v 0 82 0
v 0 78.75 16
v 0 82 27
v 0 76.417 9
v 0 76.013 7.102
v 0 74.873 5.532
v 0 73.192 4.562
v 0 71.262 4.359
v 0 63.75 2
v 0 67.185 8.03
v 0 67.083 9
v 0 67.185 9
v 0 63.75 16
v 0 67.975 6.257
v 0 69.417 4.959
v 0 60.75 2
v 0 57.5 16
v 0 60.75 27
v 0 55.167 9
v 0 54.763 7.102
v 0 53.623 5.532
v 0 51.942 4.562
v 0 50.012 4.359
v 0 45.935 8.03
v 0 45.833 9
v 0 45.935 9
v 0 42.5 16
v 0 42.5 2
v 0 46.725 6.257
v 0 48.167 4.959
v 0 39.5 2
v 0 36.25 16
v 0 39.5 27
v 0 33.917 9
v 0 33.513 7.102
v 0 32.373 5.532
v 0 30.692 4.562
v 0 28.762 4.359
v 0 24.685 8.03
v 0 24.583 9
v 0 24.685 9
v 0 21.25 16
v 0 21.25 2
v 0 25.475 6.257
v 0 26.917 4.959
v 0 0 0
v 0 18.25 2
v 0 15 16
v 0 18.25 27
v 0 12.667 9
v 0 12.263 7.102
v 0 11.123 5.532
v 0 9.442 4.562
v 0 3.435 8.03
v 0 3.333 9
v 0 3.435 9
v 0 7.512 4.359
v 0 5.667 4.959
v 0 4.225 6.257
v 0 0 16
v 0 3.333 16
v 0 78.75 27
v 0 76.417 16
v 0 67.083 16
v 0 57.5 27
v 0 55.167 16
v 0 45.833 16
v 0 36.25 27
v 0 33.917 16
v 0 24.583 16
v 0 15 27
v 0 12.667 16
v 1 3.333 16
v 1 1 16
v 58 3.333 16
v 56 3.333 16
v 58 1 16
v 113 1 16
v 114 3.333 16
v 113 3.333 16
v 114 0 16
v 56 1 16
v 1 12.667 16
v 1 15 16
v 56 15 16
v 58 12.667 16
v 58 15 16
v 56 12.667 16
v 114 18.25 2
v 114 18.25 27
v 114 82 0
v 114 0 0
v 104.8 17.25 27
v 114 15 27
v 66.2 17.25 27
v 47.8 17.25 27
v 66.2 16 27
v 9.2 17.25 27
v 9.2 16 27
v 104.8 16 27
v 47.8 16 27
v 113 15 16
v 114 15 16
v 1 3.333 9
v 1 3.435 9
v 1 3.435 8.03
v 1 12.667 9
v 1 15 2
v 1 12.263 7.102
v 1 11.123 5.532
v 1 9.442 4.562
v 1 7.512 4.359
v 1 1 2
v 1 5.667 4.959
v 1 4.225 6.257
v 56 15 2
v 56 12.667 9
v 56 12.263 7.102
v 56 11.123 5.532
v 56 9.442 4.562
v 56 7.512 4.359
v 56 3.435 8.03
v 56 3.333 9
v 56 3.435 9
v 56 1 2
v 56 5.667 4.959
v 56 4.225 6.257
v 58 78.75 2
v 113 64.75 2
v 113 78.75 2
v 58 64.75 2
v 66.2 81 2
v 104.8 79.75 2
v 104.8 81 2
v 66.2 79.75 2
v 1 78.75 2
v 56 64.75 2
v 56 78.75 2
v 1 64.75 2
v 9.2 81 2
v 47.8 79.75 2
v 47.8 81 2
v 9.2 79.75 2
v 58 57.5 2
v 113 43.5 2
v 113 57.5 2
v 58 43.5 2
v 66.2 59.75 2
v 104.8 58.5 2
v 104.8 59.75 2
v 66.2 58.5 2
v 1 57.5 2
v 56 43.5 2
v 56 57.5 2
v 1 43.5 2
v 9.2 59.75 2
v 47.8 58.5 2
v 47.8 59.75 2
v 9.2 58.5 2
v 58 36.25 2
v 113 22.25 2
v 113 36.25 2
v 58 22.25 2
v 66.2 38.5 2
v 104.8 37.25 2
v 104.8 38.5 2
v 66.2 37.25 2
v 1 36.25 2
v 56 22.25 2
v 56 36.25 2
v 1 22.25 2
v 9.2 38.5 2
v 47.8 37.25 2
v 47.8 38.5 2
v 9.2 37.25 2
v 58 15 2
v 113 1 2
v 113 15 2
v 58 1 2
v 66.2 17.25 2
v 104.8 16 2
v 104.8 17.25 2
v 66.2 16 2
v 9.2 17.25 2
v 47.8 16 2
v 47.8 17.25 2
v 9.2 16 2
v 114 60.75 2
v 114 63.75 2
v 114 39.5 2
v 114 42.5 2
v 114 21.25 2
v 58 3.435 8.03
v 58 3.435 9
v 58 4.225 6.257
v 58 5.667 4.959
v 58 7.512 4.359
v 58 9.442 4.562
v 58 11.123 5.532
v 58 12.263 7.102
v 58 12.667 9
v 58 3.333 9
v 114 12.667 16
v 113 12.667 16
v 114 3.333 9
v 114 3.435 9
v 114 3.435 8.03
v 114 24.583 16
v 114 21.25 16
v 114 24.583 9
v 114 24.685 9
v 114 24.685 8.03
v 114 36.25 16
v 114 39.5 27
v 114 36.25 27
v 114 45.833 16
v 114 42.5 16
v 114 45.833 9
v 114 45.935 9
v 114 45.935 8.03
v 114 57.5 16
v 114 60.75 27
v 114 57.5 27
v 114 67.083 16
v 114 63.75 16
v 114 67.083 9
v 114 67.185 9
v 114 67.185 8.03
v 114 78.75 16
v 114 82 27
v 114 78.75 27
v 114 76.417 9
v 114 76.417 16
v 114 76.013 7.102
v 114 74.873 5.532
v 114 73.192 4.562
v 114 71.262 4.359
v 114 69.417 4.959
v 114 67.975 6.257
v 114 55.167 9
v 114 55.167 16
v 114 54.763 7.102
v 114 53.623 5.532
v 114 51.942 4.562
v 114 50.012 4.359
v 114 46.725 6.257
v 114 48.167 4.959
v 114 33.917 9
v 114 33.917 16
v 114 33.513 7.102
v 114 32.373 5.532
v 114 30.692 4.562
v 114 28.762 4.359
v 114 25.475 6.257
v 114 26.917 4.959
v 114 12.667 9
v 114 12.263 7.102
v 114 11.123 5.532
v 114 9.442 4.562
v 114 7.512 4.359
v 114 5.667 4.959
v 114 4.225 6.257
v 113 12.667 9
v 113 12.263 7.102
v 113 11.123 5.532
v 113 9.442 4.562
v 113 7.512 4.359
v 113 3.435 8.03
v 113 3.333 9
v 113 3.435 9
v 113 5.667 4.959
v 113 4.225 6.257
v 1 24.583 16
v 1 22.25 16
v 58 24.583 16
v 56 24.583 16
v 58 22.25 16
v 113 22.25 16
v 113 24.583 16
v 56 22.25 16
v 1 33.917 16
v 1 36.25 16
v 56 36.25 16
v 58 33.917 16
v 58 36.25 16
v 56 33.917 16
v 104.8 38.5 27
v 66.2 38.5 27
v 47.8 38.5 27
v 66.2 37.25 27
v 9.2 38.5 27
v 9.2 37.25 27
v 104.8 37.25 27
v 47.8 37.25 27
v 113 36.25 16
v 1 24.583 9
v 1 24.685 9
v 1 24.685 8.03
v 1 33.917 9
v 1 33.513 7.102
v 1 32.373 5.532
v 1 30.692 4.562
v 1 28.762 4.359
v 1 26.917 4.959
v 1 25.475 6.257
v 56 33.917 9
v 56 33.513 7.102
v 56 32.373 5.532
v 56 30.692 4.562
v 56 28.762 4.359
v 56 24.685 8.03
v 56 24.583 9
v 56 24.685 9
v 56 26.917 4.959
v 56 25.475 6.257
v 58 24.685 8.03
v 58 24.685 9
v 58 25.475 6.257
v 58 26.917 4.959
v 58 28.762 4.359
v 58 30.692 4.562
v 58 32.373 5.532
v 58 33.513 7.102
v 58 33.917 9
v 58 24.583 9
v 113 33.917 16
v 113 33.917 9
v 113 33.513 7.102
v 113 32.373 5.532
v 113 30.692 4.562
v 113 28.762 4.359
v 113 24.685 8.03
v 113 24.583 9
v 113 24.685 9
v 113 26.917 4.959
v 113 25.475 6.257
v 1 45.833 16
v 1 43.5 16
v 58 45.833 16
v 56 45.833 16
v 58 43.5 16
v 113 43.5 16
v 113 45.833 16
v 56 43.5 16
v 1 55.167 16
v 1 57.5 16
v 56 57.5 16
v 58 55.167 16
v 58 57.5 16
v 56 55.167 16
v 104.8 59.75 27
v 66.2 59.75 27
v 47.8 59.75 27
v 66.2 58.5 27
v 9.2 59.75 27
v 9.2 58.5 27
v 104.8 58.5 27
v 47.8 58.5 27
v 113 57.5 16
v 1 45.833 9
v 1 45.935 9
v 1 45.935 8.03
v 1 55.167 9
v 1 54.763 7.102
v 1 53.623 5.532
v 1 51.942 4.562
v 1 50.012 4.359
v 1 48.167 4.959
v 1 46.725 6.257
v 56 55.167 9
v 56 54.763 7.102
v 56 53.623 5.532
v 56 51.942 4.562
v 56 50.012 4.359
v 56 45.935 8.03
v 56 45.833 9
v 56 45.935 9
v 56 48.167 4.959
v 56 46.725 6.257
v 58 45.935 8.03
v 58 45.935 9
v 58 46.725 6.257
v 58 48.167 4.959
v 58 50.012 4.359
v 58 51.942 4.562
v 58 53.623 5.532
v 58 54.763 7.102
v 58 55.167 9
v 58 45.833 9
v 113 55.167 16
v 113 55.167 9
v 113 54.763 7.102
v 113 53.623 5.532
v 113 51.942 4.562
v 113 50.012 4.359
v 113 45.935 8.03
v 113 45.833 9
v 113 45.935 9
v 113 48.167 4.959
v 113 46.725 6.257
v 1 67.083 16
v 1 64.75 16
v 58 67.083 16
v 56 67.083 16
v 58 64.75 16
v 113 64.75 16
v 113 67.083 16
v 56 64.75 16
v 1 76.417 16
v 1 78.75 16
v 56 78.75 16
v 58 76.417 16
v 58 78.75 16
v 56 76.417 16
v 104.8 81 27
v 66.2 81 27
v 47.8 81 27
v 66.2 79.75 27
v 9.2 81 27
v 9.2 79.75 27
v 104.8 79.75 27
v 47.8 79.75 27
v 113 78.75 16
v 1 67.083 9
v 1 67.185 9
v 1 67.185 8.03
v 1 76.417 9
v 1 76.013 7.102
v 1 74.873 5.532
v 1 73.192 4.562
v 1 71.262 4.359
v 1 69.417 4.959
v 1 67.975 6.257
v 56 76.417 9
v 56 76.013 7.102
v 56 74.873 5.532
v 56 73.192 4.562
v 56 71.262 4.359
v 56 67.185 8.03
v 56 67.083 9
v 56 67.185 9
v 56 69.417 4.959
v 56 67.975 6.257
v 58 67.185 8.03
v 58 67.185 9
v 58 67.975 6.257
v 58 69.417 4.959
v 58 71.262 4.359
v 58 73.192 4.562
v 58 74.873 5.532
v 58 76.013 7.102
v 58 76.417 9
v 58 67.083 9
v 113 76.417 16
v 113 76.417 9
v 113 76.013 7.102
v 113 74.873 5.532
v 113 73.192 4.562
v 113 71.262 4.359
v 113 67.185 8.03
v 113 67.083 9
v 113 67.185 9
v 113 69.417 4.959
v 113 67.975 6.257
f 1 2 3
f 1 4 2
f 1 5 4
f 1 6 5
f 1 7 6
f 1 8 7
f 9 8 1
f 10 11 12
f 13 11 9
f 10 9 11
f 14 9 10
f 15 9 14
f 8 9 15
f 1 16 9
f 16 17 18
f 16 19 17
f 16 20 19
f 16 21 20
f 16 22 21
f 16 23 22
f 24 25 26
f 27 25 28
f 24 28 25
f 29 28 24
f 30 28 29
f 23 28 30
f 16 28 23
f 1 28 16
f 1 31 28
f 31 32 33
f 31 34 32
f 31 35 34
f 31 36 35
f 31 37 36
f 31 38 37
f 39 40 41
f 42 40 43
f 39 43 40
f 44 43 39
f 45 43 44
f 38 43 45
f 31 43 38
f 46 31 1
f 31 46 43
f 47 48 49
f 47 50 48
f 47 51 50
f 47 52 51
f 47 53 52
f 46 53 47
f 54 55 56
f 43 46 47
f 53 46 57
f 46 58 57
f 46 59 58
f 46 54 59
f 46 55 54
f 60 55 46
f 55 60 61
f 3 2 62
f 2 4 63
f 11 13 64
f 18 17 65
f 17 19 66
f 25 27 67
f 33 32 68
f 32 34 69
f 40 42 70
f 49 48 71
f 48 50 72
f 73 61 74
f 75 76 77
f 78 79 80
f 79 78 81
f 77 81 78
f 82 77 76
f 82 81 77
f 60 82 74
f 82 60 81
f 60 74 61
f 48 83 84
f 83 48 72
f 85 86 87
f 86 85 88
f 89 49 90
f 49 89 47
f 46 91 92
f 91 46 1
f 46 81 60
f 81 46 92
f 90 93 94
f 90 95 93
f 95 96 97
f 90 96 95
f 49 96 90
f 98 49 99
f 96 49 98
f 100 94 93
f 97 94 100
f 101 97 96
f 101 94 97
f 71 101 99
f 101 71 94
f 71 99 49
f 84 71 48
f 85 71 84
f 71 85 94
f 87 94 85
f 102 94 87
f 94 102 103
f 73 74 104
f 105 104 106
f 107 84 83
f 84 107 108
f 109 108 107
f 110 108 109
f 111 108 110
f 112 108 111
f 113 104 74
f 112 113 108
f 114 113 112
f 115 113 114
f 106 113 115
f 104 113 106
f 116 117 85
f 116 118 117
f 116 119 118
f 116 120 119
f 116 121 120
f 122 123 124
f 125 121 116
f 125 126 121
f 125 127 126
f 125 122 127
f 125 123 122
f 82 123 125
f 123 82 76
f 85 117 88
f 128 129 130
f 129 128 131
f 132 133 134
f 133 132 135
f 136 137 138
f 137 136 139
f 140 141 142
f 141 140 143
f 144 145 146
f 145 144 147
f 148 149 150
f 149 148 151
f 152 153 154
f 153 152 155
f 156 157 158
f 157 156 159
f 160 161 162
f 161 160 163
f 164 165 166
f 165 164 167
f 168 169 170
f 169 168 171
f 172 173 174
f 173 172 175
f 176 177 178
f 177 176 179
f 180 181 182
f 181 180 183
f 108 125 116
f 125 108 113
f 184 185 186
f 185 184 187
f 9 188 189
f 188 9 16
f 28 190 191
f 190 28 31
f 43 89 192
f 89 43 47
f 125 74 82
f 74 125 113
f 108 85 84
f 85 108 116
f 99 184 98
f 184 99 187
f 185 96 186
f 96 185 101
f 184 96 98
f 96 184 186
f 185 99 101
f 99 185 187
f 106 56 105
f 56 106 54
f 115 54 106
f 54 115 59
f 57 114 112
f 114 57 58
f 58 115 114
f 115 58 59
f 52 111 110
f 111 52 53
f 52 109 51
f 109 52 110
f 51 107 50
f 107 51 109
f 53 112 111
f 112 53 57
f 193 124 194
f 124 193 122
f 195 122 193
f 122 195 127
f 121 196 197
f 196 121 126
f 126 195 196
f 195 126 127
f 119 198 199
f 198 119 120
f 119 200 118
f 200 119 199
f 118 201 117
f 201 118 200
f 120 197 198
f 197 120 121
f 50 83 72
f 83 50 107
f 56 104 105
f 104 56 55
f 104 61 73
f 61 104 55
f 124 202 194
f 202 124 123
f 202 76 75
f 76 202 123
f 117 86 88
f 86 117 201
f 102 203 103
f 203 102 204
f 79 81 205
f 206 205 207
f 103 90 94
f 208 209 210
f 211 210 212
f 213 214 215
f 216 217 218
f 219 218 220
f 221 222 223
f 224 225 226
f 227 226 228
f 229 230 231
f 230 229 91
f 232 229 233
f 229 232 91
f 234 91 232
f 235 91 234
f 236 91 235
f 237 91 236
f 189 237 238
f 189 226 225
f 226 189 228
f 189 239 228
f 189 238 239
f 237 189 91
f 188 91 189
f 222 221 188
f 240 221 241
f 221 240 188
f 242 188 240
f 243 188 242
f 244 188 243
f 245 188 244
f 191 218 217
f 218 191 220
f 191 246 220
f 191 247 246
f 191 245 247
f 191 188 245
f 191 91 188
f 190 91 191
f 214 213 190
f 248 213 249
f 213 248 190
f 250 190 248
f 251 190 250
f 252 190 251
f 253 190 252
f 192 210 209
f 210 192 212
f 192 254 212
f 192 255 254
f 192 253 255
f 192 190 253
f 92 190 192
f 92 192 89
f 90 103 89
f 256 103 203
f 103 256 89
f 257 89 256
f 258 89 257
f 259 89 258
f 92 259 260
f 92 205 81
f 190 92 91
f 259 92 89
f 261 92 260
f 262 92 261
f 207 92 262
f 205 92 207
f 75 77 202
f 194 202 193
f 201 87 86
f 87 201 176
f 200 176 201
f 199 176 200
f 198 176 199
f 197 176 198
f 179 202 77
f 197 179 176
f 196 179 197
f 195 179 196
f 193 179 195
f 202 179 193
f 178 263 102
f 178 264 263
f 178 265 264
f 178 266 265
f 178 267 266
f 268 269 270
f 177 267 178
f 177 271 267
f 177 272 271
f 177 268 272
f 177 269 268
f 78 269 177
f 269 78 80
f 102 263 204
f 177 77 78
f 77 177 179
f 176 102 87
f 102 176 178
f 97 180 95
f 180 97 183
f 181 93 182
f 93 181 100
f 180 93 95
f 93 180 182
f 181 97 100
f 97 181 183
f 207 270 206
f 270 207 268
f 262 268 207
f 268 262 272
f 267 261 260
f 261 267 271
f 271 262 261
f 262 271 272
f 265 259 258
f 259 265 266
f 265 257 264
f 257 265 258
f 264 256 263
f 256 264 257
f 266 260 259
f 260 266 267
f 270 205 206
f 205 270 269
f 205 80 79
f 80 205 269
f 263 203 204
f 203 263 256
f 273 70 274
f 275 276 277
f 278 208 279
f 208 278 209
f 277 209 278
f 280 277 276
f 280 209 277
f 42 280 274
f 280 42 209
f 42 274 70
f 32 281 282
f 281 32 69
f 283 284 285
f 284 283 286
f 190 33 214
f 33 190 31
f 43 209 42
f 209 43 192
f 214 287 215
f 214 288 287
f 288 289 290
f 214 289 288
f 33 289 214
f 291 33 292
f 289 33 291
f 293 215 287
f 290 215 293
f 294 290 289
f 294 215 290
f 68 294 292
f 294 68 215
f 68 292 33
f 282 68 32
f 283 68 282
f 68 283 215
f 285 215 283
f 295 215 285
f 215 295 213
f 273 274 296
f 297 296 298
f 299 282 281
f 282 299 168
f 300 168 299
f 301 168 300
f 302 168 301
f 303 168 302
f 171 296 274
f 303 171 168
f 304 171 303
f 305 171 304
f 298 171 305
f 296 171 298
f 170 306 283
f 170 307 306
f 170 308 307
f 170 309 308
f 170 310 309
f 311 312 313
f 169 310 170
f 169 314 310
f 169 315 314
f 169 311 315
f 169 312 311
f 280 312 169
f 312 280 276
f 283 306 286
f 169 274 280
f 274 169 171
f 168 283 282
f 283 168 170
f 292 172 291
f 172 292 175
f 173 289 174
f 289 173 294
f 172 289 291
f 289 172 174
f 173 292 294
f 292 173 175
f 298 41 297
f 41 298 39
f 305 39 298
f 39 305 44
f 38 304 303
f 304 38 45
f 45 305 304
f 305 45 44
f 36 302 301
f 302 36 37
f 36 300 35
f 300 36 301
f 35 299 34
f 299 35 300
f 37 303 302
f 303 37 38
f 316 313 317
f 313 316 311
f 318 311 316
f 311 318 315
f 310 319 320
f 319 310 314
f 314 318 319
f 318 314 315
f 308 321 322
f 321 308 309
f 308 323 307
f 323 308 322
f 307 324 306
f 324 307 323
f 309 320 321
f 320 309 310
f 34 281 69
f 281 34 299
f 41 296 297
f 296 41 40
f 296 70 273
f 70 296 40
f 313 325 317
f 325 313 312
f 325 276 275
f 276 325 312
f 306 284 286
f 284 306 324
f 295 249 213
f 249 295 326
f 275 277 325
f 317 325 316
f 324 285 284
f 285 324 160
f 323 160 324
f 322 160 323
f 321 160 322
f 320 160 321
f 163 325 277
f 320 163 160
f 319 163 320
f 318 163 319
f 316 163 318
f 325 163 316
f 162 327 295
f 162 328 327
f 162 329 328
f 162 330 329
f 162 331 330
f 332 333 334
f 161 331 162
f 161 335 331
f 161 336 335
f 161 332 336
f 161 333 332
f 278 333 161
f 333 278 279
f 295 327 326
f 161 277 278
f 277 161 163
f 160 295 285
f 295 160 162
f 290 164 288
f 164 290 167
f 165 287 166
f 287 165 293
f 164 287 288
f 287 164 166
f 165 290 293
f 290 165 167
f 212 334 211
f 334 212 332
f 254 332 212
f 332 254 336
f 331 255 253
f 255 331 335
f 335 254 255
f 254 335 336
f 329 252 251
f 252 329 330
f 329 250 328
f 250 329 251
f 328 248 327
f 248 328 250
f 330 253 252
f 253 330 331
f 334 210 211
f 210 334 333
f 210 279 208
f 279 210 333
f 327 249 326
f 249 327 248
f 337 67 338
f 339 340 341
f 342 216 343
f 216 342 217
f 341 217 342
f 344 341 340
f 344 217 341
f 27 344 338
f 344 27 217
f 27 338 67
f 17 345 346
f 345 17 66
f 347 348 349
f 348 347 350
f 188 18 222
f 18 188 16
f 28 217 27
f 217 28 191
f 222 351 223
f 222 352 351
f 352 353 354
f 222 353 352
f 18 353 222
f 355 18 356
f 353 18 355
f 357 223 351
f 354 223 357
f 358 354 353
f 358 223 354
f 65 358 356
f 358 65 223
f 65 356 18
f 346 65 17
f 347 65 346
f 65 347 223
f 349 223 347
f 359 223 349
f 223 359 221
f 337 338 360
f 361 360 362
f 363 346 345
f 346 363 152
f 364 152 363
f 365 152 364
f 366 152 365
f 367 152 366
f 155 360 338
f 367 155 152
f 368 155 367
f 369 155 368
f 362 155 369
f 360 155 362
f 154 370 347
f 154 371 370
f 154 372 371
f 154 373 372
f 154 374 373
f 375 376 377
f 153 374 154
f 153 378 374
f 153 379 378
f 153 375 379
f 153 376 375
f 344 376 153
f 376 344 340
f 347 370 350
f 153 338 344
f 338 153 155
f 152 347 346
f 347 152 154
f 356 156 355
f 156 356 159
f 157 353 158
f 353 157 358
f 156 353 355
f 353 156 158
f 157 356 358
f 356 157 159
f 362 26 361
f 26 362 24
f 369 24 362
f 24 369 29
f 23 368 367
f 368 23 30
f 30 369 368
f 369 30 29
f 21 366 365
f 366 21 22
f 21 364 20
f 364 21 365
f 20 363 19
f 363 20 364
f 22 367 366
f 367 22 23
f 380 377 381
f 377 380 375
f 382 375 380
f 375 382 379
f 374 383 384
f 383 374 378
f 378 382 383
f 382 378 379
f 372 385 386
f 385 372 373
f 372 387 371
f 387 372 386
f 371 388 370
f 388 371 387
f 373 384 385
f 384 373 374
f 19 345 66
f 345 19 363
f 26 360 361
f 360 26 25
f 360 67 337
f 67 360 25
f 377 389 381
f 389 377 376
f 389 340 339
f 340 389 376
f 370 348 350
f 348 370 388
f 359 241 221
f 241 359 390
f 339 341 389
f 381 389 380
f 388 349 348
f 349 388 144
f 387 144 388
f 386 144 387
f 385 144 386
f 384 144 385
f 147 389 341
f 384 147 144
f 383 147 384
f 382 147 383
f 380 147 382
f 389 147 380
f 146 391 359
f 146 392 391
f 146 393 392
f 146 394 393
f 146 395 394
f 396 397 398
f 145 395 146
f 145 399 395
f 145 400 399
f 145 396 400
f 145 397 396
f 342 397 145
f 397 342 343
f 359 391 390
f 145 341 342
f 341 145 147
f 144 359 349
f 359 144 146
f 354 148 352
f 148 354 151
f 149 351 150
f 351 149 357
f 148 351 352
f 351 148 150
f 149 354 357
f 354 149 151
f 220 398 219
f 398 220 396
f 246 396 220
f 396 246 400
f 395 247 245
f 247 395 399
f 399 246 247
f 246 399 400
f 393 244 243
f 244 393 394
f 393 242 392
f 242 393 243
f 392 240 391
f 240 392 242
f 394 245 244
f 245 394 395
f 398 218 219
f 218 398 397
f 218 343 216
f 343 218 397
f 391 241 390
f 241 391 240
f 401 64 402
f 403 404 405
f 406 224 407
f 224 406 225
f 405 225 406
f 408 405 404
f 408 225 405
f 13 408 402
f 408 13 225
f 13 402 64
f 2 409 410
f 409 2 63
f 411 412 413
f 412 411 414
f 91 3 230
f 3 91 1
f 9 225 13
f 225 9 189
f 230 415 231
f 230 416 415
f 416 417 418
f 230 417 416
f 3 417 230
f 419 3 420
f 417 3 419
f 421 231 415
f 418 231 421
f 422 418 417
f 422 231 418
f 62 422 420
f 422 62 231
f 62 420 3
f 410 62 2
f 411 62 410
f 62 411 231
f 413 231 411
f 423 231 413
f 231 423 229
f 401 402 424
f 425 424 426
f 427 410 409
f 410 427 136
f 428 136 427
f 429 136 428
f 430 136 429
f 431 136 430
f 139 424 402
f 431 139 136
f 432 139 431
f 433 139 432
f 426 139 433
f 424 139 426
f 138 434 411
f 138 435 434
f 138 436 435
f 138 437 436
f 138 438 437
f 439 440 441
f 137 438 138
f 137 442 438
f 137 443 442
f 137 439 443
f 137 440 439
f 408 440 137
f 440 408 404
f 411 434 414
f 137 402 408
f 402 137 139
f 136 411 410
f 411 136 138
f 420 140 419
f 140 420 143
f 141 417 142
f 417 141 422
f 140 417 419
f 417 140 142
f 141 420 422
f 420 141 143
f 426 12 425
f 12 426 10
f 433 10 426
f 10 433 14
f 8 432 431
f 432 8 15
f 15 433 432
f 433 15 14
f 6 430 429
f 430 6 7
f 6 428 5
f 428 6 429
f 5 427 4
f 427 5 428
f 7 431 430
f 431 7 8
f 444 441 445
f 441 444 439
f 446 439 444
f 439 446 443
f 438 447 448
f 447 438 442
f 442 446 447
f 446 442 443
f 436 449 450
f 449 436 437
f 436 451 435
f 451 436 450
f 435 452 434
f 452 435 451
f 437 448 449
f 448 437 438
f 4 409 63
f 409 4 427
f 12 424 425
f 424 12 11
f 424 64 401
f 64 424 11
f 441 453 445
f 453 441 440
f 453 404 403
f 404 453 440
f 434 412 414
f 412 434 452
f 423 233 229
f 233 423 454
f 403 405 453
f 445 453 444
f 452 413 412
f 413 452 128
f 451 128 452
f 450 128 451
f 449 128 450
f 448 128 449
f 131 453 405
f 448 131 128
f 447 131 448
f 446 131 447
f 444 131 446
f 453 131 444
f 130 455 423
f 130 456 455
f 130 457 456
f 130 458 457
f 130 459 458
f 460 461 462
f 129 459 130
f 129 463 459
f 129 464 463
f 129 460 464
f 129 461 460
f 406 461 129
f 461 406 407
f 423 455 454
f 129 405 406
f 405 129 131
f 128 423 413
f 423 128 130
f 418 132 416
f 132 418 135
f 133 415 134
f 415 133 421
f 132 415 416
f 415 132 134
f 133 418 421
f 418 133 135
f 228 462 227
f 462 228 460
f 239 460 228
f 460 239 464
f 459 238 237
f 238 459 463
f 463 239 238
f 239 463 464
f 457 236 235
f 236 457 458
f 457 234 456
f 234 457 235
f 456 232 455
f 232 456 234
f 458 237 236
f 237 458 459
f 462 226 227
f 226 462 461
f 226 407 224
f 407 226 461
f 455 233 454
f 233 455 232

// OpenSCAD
diceSide = 13.5;
wallThickness = 1;
outerWallThickness = 0;
floorThickness = 2;
dicePerRow = 4;
diceLengthFudgeFactor = 1;
diceWidthFudgeFactor = .5;
diceHeightFudgeFactor = .5;
diceOpeningLength = diceSide * dicePerRow + diceLengthFudgeFactor;
diceOpeningWidth = diceSide + diceWidthFudgeFactor;
diceOpeningHeight = diceSide + diceHeightFudgeFactor;
dividerInnerOpeningLength = 38.1 + .5; //TODO: Get this correct
dividerInnerOpeningWidth = 1.25; //TODO: Get this correct
dividerInnerOpeningHeight = 25; //TODO: Get this correct
boxLength = diceOpeningLength + wallThickness * 2;
boxWidth = diceOpeningWidth + wallThickness + (wallThickness * 2 + dividerInnerOpeningWidth);
numRows = 4;
spaceBetweenRows = 3;

difference() {
    union() {
        translate([outerWallThickness, outerWallThickness, 0]) {
            for(i=[0:numRows - 1]) {
                translate([0, i * (boxWidth + spaceBetweenRows), 0])
                    SingleDiceBox();
                translate([boxLength, i * (boxWidth + spaceBetweenRows), 0])
                    SingleDiceBox();
            }
        }
        difference(){
            cube([
                boxLength * 2 + outerWallThickness * 2,
                boxWidth * numRows + spaceBetweenRows * (numRows - 1) + outerWallThickness*2,
                floorThickness + diceOpeningHeight]);
            translate([outerWallThickness, outerWallThickness, floorThickness])
                cube([boxLength * 2, boxWidth * numRows + spaceBetweenRows * (numRows - 1), diceOpeningHeight]);
        }
    }
}

module SingleDiceBox() {
    //TODO: Minkowski
    difference() {
        union() {
            cube([
                boxLength,
                boxWidth,
                diceOpeningHeight + floorThickness
            ]);
            translate([0, wallThickness + diceOpeningWidth, 0])
                cube([boxLength, wallThickness * 2 + dividerInnerOpeningWidth, floorThickness + dividerInnerOpeningHeight]);
        }
        translate([wallThickness, wallThickness, floorThickness])
            cube([diceOpeningLength, diceOpeningWidth, diceOpeningHeight]);
        translate([
            boxLength/2 - dividerInnerOpeningLength/2,
            wallThickness + diceOpeningWidth + wallThickness,
            floorThickness])
            cube([dividerInnerOpeningLength, dividerInnerOpeningWidth, dividerInnerOpeningHeight]);
        
        translate([0,wallThickness + diceOpeningWidth * 1/2,diceOpeningWidth * 1/2 + floorThickness])
            rotate([90, 0, 90])
                cylinder(h=wallThickness, d=diceOpeningWidth * 2/3);
        
        translate([diceOpeningLength + wallThickness,wallThickness + diceOpeningWidth * 1/2,diceOpeningWidth * 1/2 + floorThickness])
            rotate([90, 0, 90])
                cylinder(h=wallThickness, d=diceOpeningWidth * 2/3);
        
        translate([0, wallThickness + diceOpeningWidth * 1/6, floorThickness + diceOpeningWidth * 1/2])
            cube([wallThickness, diceOpeningWidth * 2/3, diceOpeningWidth * 2/3]);
        
        translate([diceOpeningLength + wallThickness, wallThickness + diceOpeningWidth * 1/6, floorThickness + diceOpeningWidth * 1/2])
            cube([wallThickness, diceOpeningWidth * 2/3, diceOpeningWidth * 2/3]);
    }
}

//TODO:
//Finger notches?
//Test print
